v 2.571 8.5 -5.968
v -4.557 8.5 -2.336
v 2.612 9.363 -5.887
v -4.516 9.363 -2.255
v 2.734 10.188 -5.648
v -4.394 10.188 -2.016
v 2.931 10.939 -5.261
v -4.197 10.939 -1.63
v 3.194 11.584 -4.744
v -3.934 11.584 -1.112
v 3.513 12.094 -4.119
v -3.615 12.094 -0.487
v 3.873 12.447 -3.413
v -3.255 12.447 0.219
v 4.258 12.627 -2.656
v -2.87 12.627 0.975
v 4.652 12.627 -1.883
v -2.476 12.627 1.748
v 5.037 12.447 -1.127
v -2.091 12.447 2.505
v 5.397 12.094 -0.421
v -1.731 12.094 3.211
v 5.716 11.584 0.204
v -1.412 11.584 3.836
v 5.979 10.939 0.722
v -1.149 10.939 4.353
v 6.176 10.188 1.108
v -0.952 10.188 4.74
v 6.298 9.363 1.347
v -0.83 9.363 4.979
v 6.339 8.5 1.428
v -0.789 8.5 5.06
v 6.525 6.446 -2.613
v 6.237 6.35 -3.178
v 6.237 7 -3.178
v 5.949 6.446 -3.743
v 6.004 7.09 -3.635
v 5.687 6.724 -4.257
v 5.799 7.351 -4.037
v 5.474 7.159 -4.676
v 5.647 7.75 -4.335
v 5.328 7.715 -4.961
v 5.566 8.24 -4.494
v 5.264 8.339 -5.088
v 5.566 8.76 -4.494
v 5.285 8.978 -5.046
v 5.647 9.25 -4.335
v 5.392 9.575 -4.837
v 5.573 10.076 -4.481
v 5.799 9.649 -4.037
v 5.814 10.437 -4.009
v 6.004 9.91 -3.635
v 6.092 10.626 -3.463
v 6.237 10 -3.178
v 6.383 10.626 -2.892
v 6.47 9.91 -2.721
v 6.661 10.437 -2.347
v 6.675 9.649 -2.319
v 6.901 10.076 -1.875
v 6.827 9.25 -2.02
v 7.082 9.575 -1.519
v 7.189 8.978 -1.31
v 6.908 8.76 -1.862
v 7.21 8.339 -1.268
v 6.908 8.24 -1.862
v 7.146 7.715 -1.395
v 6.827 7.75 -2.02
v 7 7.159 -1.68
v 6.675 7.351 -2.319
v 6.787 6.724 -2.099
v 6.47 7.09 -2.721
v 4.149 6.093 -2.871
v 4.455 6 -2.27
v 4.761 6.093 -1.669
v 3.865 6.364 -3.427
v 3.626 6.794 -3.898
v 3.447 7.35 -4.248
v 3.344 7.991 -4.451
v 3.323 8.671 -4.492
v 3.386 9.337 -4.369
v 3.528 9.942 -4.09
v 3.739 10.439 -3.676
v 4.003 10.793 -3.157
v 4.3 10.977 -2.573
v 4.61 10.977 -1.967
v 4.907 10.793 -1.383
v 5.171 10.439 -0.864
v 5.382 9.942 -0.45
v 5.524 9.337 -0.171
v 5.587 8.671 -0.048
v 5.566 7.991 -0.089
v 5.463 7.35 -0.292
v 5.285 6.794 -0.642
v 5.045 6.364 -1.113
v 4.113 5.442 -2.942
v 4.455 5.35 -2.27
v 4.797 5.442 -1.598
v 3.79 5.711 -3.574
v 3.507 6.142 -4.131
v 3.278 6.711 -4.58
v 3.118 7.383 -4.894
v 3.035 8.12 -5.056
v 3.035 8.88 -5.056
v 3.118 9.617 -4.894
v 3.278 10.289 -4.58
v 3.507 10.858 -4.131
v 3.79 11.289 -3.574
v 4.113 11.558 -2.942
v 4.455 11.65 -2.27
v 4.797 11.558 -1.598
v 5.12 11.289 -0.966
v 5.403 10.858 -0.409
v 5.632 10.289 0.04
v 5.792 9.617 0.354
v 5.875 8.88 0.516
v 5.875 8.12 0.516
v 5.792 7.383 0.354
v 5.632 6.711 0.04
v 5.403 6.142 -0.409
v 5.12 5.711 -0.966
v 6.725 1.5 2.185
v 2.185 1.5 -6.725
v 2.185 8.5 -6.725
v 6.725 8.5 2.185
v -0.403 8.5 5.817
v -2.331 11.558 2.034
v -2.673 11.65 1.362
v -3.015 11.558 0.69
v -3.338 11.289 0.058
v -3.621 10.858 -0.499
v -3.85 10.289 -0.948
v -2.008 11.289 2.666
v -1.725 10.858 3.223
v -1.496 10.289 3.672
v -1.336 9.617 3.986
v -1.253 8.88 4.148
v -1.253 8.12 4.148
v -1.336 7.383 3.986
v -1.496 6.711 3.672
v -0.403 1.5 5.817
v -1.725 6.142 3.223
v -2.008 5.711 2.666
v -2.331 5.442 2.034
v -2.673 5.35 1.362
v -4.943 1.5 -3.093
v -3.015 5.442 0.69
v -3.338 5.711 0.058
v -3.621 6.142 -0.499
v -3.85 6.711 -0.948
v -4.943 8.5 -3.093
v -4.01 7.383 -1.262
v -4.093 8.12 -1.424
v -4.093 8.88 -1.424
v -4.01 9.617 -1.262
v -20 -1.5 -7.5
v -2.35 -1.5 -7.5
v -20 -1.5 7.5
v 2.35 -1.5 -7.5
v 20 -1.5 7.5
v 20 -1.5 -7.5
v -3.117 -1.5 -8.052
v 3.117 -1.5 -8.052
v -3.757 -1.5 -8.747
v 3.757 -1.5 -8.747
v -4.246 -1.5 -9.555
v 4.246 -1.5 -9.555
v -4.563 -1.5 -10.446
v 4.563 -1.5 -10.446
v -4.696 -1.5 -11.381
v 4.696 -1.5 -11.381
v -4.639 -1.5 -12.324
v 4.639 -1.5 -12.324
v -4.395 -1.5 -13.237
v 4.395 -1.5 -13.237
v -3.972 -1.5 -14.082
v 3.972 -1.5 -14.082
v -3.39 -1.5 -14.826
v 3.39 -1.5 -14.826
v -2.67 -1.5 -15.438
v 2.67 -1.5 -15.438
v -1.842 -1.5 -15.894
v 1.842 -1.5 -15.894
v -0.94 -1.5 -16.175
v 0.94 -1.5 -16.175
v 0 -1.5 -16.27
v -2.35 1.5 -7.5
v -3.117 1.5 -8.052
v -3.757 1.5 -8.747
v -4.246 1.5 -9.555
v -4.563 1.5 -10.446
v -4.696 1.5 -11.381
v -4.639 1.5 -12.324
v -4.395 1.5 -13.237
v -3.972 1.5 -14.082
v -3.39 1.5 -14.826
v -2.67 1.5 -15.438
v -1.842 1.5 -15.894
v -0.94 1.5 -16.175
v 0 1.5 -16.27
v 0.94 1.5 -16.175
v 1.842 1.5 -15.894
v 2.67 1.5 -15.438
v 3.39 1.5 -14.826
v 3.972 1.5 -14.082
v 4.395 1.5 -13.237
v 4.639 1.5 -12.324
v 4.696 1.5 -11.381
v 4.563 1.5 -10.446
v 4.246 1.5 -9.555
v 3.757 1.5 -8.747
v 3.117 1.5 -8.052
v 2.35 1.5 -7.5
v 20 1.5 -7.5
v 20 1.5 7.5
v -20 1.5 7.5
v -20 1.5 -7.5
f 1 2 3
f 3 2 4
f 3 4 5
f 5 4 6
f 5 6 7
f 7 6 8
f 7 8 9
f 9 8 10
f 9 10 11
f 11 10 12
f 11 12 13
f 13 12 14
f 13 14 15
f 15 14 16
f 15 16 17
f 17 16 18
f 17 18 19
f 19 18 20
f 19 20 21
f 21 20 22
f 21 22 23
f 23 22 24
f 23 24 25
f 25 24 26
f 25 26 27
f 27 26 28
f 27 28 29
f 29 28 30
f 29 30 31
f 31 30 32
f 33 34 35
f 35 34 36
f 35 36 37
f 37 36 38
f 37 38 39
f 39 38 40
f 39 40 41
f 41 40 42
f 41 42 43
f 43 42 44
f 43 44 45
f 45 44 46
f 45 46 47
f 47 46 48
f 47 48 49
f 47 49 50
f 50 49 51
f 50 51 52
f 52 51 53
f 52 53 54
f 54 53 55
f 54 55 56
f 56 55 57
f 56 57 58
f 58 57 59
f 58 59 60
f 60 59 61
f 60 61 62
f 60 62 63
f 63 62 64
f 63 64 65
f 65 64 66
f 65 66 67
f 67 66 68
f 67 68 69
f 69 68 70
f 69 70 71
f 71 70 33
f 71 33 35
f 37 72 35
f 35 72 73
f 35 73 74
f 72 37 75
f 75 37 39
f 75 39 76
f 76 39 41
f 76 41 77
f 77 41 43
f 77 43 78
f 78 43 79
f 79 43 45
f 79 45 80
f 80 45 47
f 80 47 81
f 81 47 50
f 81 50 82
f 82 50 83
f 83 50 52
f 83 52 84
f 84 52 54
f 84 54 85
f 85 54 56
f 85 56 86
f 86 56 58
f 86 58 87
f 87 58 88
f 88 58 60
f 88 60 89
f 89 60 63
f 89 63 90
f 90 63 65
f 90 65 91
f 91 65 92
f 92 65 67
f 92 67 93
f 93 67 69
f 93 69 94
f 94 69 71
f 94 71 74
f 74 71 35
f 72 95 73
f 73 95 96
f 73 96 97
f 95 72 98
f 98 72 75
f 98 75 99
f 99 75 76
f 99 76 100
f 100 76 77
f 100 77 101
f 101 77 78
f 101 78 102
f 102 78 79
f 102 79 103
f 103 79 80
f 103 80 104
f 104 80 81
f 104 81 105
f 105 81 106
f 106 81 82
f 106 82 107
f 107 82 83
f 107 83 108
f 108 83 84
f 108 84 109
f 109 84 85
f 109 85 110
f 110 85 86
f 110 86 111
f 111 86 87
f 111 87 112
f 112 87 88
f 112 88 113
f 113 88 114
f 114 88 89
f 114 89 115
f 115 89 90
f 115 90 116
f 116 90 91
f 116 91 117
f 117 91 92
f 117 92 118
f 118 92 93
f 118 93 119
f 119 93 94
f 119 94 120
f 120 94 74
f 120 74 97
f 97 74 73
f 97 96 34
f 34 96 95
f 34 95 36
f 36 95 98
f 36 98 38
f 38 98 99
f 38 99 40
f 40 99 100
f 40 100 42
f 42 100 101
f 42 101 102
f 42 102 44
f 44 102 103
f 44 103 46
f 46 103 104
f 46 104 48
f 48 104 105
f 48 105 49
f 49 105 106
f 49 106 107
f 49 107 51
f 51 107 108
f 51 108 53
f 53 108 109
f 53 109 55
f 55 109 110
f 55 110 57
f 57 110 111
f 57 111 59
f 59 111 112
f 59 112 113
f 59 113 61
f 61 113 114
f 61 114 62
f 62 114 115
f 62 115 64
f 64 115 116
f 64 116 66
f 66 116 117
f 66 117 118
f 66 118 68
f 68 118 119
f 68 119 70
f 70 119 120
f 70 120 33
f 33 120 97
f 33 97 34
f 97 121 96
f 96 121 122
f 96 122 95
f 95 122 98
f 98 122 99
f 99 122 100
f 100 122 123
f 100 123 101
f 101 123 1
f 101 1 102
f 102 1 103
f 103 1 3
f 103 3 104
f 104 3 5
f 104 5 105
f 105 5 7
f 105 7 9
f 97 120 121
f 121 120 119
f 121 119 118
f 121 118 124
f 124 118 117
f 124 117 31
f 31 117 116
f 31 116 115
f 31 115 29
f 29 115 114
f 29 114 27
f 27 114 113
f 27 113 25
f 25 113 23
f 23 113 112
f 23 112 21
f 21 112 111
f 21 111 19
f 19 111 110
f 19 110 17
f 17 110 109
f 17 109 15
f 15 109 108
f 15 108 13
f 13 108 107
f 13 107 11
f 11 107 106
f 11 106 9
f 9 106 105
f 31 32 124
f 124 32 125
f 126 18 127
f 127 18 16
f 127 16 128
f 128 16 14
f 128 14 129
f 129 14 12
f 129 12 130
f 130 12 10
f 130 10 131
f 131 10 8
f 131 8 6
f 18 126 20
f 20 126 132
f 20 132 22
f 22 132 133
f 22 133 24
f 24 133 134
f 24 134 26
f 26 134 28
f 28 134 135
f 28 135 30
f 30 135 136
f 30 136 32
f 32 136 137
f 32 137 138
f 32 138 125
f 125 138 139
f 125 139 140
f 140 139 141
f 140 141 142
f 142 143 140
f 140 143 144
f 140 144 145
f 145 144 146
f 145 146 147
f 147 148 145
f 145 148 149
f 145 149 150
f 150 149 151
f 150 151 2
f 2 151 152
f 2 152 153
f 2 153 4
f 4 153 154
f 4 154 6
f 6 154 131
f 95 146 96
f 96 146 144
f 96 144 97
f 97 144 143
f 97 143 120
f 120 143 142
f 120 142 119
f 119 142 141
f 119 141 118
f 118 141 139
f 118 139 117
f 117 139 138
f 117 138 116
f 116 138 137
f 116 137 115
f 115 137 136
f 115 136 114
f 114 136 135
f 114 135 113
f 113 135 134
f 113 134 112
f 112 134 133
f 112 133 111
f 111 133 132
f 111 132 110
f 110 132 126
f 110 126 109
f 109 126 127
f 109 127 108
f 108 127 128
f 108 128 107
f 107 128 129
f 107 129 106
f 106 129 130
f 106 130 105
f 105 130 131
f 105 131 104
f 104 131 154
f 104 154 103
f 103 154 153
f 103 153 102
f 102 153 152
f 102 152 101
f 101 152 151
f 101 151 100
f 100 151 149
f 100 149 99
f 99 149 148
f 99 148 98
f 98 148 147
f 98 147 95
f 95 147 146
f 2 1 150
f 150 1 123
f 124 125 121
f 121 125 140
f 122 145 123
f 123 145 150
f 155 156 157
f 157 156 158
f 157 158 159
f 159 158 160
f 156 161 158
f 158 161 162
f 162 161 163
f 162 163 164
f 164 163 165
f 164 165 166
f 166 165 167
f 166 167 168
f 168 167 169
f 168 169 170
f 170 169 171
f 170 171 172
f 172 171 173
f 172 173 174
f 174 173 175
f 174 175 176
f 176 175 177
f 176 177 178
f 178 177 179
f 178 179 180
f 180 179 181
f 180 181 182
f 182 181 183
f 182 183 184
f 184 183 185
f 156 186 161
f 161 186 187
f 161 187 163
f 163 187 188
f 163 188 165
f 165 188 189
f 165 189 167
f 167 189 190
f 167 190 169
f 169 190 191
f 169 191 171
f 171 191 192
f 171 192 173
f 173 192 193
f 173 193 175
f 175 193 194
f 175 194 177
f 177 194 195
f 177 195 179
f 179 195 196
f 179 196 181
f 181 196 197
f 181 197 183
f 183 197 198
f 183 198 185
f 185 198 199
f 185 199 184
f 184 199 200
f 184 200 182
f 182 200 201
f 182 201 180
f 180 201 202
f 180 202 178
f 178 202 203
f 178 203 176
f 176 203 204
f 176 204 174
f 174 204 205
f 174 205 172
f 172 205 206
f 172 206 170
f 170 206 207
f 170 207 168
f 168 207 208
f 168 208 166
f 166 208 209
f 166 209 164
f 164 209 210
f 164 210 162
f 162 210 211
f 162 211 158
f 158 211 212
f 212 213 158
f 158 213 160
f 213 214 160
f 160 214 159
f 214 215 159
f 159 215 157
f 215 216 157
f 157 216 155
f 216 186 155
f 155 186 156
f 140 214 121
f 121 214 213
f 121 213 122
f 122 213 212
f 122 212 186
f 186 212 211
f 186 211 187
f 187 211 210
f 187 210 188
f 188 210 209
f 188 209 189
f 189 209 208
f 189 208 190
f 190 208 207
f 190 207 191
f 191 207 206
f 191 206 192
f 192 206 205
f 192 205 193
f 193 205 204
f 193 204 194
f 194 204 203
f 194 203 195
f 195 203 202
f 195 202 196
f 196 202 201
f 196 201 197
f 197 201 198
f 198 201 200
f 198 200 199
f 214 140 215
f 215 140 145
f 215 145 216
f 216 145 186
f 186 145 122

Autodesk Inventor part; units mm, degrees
ref_plane "XZ Plane" through (0, 0, 0) normal (0, 1, 0) x (-1, 0, 0)
ref_plane "XY Plane" through (0, 0, 0) normal (0, 0, 1) x (1, 0, 0)
sketch "Sketch2" plane through (0, 0, 0) normal (0, 1, 0) x (-1, 0, 0)
  line L0 (-20, -7.5) -> (-20, 7.5)
  line L1 (-20, 7.5) -> (20, 7.5)
  line L2 (20, 7.5) -> (20, -7.5)
  arc A0 (-2.35, -7.5) -> (2.35, -7.5) centre (0, -11.5703) ccw
  line L3 (20, -7.5) -> (2.35, -7.5)
  line L4 (-2.35, -7.5) -> (-20, -7.5)
  point P0 (0, 0)
  point P1 (0, -7.5)
  point P2 (-20, 0)
  point P3 (0, -16.2703)
  dimension "d1" = 40
  dimension "d3" = 15
  dimension "d5" = 4.7
  dimension "d6" = 4.7
extrude "Extrusion1" add sketch "Sketch2" along normal mid plane 3
ref_plane "Work Plane1" through (0, 0, 0) normal (-0.454, 0, -0.891) x (0, 1, 0)
sketch "Sketch3" plane through (0, 0, 0) normal (-0.454, 0, -0.891) x (0, 1, 0)
  line L0 (1.5, 1.3111) -> (1.5, -14.4152) projected
  line L1 (8.5, -3) -> (1.5, -3)
  line L2 (1.5, -3) -> (1.5, 5)
  line L3 (1.5, 5) -> (8.5, 5)
  line L4 (8.5, 5) -> (8.5, -3)
  line L5 (8.5, 1) -> (1.5, 1) construction
  line L6 (6.35, 7) -> (7.35, 9) construction
  line L7 (7, 7) -> (8, 9) construction
  line L8 (8, 9) -> (7.35, 9) construction
  line L9 (7, 7) -> (6.35, 7)
  line L10 (8.5, -3) -> (11.65, -3)
  line L11 (11.65, -3) -> (11.65, 5)
  line L12 (11.65, 5) -> (8.5, 5)
  line L13 (7, 7) -> (6, 5)
  line L14 (6.35, 7) -> (5.35, 5)
  line L15 (8.5, -3) -> (12.65, -3)
  line L16 (12.65, -3) -> (12.65, 5)
  line L17 (12.65, 5) -> (8.5, 5)
  point P0 (0, 0)
  point P1 (5, 1)
  point P2 (1.5, -3)
  dimension "d10" = 8
  dimension "d11" = 7
  dimension "d15" = 4
  dimension "d16" = 1
  dimension "d17" = 2.3
  dimension "d18" = 6.3
  dimension "d19" = 6.3
  dimension "d22" = 8.3
  dimension "d25" = 1
extrude "Extrusion2" add sketch "Sketch3" along normal mid plane 10 contours L2 L3 L4 L1 L0
revolve "Revolution1" cut sketch "Sketch3" angle 360 about axis through (4.455, 8.5, -2.27) along (-0.891, 0, 0.454) contours L4 L12 L11 L10
revolve "Revolution2" add sketch "Sketch3" angle 360 about axis through (4.455, 8.5, -2.27) along (-0.891, 0, 0.454) contours L14 L9 L13 L3 | L11 L17 L16 L15
equation "\"d19\" = d18"
properties part number "Nozzle Fixer"
